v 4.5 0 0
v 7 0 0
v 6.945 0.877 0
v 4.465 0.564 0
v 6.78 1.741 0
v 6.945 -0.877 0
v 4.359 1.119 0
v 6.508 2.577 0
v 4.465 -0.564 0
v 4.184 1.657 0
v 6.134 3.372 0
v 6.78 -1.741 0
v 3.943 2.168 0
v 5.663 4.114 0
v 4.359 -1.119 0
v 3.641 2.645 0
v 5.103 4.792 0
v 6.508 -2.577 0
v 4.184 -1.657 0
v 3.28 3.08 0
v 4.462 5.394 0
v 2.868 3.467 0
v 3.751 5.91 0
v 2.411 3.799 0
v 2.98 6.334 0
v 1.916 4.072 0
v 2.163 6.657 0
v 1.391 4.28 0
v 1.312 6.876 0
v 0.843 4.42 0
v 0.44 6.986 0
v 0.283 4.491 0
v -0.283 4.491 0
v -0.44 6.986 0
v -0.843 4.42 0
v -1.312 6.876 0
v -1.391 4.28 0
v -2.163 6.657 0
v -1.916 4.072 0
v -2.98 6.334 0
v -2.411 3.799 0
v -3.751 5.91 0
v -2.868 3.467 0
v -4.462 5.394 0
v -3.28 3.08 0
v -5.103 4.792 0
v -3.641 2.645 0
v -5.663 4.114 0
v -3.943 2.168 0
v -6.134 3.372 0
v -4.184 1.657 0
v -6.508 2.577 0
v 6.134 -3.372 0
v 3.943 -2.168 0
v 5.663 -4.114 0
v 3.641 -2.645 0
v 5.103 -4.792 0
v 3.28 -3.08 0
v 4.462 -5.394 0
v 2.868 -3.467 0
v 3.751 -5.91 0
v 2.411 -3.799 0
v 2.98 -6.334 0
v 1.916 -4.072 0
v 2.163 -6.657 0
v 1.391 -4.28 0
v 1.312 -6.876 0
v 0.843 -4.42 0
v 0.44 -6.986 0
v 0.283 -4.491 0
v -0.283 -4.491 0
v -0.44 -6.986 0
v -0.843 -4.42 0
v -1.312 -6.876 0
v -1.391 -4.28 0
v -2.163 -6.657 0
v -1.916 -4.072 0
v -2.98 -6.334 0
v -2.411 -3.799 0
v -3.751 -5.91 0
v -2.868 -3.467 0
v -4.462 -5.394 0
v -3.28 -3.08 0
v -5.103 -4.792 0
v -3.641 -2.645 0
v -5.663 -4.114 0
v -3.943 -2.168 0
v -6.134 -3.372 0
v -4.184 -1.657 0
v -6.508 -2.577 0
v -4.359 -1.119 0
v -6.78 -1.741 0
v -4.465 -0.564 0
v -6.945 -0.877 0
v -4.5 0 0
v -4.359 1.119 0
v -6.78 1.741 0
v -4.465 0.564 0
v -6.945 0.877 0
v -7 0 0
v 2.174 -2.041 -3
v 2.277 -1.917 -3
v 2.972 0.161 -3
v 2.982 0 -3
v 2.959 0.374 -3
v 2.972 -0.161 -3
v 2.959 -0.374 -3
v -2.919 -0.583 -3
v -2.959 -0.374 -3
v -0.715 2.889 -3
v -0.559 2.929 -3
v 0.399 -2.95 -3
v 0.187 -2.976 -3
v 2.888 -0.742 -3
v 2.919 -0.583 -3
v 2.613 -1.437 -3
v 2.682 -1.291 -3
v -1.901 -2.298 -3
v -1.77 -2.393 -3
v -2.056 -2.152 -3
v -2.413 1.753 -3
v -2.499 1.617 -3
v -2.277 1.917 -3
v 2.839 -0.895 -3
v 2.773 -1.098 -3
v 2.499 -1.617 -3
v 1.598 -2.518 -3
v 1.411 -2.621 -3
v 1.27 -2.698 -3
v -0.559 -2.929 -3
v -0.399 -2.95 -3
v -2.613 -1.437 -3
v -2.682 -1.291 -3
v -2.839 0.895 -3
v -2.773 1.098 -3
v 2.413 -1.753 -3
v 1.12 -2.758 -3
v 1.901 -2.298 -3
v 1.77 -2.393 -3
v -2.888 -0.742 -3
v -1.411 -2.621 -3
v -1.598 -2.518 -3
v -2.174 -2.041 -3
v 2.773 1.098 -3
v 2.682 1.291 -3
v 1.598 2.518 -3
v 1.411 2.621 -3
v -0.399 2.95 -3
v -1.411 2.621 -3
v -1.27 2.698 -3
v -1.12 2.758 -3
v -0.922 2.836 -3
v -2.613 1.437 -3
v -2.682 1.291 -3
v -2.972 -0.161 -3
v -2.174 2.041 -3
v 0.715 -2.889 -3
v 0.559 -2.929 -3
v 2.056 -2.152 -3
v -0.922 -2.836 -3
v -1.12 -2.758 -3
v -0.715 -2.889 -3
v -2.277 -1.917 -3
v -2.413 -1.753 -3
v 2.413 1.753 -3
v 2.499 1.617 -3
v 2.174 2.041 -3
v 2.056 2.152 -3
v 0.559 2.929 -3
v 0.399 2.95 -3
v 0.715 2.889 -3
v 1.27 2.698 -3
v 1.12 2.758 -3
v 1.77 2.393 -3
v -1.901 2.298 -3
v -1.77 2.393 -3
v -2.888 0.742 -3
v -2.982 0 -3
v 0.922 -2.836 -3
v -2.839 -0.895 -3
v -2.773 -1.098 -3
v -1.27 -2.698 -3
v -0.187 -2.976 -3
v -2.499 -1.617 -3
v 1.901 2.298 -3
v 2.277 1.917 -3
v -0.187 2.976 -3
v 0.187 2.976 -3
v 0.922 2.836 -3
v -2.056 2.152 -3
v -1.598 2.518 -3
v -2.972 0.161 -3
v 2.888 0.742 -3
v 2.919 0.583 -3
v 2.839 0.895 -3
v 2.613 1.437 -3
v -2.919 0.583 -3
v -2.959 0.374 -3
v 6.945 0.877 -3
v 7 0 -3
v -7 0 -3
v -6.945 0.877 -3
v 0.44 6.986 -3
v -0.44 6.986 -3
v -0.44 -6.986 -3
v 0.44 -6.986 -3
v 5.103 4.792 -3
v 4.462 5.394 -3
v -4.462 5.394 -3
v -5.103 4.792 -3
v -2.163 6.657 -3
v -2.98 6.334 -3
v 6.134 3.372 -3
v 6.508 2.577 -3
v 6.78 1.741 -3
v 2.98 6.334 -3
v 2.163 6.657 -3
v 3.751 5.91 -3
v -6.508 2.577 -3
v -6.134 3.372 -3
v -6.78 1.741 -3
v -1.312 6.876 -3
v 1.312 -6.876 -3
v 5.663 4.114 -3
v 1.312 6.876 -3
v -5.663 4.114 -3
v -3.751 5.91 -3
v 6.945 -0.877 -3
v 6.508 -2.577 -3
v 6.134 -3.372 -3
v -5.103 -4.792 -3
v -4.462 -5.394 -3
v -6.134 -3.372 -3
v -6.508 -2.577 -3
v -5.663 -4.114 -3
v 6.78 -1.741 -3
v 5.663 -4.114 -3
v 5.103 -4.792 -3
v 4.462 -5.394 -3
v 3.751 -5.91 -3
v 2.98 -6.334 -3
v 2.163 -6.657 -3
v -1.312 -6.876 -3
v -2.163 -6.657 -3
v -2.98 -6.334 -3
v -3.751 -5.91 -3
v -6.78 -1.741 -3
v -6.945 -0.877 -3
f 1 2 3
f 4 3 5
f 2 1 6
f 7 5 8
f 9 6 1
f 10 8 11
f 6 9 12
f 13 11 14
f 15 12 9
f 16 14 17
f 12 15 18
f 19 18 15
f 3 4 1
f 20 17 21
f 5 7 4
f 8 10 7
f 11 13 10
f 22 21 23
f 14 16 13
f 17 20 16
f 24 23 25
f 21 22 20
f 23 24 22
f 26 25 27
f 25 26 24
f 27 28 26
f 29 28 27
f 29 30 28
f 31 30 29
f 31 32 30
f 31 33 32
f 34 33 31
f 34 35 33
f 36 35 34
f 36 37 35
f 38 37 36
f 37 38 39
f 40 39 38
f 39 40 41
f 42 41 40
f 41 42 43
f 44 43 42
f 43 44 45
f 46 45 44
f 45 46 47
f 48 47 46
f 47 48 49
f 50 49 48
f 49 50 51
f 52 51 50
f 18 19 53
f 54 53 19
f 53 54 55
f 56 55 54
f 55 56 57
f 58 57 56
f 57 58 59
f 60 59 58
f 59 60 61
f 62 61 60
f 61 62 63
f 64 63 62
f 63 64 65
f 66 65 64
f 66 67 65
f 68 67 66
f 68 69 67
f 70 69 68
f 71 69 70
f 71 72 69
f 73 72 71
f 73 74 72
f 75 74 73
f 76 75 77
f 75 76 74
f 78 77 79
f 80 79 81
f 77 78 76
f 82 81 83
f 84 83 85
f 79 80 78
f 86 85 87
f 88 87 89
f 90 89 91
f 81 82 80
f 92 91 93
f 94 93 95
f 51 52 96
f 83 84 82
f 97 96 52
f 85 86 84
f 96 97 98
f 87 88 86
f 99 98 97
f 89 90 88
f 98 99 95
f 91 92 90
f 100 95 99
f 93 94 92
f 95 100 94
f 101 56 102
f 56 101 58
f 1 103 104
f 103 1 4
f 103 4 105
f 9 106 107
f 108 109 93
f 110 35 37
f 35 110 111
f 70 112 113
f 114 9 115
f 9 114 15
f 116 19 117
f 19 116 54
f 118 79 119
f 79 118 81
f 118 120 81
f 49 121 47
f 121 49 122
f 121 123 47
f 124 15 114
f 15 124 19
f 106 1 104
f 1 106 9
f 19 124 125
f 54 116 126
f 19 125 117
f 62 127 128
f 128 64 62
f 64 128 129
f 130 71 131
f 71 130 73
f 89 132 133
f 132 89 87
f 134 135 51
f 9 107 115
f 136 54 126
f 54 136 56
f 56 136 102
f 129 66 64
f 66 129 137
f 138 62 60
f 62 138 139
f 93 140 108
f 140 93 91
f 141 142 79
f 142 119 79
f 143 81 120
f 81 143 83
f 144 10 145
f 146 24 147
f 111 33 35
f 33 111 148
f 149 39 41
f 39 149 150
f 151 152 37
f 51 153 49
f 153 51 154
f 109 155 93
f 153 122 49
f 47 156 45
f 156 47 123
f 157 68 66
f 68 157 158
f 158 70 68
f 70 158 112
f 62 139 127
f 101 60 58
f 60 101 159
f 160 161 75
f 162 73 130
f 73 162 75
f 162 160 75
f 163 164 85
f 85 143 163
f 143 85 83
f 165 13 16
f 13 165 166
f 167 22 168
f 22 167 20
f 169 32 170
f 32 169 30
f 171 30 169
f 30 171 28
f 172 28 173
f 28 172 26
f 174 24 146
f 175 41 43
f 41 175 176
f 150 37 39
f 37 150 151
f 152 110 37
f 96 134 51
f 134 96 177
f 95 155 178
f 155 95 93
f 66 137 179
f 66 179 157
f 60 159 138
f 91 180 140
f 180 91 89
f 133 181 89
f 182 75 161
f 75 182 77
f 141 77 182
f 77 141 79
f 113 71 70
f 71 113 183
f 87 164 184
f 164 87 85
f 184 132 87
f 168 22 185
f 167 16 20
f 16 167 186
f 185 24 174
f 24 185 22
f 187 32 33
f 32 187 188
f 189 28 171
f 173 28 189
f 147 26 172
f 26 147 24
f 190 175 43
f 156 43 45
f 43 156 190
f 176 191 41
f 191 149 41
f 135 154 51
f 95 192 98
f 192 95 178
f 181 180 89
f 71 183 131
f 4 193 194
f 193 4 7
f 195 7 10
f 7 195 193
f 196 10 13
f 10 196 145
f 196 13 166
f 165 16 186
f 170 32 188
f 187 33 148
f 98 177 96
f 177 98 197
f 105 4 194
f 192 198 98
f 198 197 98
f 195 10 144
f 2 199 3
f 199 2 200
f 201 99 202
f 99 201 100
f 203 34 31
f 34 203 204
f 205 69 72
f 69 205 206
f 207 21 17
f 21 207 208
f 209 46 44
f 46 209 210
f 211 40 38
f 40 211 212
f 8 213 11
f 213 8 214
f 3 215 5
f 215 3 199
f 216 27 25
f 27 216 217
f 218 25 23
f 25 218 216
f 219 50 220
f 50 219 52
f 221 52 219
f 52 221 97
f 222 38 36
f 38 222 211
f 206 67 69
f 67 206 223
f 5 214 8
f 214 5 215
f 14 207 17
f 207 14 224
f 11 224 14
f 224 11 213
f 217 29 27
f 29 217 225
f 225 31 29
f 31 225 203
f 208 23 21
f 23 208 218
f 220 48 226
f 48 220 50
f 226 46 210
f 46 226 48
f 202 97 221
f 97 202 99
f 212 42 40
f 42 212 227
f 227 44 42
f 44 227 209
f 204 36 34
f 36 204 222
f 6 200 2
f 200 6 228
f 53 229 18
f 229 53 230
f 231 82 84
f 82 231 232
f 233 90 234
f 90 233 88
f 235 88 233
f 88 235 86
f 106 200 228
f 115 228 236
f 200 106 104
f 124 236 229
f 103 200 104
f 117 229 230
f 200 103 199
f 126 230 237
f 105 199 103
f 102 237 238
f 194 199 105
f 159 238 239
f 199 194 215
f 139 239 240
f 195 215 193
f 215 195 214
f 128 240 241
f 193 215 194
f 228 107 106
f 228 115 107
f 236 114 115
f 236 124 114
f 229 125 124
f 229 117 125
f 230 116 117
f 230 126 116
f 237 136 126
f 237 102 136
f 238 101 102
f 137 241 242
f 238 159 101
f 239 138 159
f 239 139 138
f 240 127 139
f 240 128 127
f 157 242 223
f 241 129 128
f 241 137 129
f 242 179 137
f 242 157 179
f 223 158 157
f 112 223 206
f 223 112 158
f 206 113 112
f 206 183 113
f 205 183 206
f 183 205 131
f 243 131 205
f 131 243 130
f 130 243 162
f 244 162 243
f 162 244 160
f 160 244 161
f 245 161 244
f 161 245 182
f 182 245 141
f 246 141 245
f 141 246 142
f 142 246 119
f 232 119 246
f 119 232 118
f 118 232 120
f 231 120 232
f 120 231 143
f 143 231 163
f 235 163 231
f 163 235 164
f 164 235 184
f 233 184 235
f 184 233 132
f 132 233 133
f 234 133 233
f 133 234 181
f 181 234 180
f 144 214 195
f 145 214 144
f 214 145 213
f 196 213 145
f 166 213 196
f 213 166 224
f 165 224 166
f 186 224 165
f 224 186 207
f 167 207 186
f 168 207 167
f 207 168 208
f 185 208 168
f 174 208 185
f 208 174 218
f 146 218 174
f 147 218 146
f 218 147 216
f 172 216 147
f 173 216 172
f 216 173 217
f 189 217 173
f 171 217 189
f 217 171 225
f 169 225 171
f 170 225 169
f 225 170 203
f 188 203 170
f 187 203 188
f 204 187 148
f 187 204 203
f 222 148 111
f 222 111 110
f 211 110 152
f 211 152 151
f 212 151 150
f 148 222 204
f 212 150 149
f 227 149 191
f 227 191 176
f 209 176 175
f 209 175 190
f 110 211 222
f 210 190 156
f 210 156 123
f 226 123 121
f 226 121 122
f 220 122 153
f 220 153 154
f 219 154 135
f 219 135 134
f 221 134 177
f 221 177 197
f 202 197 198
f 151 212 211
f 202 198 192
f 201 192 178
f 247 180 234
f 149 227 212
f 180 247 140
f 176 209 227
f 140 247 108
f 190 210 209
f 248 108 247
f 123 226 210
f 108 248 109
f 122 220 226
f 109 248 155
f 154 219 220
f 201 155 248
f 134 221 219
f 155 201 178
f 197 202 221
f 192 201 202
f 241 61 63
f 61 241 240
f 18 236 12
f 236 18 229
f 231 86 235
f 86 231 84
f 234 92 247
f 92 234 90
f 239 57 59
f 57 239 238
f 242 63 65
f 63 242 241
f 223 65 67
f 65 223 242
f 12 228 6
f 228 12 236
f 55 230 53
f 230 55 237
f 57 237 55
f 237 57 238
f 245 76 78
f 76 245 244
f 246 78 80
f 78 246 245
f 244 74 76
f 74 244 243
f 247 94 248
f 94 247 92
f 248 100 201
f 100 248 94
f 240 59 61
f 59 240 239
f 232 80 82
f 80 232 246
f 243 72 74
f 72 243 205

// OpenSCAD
$fn = 50;


difference() {
	union() {
		translate(v = [0, 0, -3.0000000000]) {
			cylinder(h = 3, r = 7.0000000000);
		}
		cylinder(h = 0, r = 13.0000000000);
	}
	union() {
		translate(v = [0, 0, 0]) {
			rotate(a = [0, 0, 0]) {
				difference() {
					union() {
						#translate(v = [0, 0, -3.0000000000]) {
							cylinder(h = 3, r = 2.2500000000);
						}
						#translate(v = [0, 0, -4.2000000000]) {
							cylinder(h = 4.2000000000, r1 = 2.3750000000, r2 = 4.5000000000);
						}
						#translate(v = [0, 0, -3.0000000000]) {
							cylinder(h = 3, r = 2.3750000000);
						}
						#translate(v = [0, 0, -3.0000000000]) {
							cylinder(h = 3, r = 2.2500000000);
						}
					}
					union();
				}
			}
		}
	}
}
